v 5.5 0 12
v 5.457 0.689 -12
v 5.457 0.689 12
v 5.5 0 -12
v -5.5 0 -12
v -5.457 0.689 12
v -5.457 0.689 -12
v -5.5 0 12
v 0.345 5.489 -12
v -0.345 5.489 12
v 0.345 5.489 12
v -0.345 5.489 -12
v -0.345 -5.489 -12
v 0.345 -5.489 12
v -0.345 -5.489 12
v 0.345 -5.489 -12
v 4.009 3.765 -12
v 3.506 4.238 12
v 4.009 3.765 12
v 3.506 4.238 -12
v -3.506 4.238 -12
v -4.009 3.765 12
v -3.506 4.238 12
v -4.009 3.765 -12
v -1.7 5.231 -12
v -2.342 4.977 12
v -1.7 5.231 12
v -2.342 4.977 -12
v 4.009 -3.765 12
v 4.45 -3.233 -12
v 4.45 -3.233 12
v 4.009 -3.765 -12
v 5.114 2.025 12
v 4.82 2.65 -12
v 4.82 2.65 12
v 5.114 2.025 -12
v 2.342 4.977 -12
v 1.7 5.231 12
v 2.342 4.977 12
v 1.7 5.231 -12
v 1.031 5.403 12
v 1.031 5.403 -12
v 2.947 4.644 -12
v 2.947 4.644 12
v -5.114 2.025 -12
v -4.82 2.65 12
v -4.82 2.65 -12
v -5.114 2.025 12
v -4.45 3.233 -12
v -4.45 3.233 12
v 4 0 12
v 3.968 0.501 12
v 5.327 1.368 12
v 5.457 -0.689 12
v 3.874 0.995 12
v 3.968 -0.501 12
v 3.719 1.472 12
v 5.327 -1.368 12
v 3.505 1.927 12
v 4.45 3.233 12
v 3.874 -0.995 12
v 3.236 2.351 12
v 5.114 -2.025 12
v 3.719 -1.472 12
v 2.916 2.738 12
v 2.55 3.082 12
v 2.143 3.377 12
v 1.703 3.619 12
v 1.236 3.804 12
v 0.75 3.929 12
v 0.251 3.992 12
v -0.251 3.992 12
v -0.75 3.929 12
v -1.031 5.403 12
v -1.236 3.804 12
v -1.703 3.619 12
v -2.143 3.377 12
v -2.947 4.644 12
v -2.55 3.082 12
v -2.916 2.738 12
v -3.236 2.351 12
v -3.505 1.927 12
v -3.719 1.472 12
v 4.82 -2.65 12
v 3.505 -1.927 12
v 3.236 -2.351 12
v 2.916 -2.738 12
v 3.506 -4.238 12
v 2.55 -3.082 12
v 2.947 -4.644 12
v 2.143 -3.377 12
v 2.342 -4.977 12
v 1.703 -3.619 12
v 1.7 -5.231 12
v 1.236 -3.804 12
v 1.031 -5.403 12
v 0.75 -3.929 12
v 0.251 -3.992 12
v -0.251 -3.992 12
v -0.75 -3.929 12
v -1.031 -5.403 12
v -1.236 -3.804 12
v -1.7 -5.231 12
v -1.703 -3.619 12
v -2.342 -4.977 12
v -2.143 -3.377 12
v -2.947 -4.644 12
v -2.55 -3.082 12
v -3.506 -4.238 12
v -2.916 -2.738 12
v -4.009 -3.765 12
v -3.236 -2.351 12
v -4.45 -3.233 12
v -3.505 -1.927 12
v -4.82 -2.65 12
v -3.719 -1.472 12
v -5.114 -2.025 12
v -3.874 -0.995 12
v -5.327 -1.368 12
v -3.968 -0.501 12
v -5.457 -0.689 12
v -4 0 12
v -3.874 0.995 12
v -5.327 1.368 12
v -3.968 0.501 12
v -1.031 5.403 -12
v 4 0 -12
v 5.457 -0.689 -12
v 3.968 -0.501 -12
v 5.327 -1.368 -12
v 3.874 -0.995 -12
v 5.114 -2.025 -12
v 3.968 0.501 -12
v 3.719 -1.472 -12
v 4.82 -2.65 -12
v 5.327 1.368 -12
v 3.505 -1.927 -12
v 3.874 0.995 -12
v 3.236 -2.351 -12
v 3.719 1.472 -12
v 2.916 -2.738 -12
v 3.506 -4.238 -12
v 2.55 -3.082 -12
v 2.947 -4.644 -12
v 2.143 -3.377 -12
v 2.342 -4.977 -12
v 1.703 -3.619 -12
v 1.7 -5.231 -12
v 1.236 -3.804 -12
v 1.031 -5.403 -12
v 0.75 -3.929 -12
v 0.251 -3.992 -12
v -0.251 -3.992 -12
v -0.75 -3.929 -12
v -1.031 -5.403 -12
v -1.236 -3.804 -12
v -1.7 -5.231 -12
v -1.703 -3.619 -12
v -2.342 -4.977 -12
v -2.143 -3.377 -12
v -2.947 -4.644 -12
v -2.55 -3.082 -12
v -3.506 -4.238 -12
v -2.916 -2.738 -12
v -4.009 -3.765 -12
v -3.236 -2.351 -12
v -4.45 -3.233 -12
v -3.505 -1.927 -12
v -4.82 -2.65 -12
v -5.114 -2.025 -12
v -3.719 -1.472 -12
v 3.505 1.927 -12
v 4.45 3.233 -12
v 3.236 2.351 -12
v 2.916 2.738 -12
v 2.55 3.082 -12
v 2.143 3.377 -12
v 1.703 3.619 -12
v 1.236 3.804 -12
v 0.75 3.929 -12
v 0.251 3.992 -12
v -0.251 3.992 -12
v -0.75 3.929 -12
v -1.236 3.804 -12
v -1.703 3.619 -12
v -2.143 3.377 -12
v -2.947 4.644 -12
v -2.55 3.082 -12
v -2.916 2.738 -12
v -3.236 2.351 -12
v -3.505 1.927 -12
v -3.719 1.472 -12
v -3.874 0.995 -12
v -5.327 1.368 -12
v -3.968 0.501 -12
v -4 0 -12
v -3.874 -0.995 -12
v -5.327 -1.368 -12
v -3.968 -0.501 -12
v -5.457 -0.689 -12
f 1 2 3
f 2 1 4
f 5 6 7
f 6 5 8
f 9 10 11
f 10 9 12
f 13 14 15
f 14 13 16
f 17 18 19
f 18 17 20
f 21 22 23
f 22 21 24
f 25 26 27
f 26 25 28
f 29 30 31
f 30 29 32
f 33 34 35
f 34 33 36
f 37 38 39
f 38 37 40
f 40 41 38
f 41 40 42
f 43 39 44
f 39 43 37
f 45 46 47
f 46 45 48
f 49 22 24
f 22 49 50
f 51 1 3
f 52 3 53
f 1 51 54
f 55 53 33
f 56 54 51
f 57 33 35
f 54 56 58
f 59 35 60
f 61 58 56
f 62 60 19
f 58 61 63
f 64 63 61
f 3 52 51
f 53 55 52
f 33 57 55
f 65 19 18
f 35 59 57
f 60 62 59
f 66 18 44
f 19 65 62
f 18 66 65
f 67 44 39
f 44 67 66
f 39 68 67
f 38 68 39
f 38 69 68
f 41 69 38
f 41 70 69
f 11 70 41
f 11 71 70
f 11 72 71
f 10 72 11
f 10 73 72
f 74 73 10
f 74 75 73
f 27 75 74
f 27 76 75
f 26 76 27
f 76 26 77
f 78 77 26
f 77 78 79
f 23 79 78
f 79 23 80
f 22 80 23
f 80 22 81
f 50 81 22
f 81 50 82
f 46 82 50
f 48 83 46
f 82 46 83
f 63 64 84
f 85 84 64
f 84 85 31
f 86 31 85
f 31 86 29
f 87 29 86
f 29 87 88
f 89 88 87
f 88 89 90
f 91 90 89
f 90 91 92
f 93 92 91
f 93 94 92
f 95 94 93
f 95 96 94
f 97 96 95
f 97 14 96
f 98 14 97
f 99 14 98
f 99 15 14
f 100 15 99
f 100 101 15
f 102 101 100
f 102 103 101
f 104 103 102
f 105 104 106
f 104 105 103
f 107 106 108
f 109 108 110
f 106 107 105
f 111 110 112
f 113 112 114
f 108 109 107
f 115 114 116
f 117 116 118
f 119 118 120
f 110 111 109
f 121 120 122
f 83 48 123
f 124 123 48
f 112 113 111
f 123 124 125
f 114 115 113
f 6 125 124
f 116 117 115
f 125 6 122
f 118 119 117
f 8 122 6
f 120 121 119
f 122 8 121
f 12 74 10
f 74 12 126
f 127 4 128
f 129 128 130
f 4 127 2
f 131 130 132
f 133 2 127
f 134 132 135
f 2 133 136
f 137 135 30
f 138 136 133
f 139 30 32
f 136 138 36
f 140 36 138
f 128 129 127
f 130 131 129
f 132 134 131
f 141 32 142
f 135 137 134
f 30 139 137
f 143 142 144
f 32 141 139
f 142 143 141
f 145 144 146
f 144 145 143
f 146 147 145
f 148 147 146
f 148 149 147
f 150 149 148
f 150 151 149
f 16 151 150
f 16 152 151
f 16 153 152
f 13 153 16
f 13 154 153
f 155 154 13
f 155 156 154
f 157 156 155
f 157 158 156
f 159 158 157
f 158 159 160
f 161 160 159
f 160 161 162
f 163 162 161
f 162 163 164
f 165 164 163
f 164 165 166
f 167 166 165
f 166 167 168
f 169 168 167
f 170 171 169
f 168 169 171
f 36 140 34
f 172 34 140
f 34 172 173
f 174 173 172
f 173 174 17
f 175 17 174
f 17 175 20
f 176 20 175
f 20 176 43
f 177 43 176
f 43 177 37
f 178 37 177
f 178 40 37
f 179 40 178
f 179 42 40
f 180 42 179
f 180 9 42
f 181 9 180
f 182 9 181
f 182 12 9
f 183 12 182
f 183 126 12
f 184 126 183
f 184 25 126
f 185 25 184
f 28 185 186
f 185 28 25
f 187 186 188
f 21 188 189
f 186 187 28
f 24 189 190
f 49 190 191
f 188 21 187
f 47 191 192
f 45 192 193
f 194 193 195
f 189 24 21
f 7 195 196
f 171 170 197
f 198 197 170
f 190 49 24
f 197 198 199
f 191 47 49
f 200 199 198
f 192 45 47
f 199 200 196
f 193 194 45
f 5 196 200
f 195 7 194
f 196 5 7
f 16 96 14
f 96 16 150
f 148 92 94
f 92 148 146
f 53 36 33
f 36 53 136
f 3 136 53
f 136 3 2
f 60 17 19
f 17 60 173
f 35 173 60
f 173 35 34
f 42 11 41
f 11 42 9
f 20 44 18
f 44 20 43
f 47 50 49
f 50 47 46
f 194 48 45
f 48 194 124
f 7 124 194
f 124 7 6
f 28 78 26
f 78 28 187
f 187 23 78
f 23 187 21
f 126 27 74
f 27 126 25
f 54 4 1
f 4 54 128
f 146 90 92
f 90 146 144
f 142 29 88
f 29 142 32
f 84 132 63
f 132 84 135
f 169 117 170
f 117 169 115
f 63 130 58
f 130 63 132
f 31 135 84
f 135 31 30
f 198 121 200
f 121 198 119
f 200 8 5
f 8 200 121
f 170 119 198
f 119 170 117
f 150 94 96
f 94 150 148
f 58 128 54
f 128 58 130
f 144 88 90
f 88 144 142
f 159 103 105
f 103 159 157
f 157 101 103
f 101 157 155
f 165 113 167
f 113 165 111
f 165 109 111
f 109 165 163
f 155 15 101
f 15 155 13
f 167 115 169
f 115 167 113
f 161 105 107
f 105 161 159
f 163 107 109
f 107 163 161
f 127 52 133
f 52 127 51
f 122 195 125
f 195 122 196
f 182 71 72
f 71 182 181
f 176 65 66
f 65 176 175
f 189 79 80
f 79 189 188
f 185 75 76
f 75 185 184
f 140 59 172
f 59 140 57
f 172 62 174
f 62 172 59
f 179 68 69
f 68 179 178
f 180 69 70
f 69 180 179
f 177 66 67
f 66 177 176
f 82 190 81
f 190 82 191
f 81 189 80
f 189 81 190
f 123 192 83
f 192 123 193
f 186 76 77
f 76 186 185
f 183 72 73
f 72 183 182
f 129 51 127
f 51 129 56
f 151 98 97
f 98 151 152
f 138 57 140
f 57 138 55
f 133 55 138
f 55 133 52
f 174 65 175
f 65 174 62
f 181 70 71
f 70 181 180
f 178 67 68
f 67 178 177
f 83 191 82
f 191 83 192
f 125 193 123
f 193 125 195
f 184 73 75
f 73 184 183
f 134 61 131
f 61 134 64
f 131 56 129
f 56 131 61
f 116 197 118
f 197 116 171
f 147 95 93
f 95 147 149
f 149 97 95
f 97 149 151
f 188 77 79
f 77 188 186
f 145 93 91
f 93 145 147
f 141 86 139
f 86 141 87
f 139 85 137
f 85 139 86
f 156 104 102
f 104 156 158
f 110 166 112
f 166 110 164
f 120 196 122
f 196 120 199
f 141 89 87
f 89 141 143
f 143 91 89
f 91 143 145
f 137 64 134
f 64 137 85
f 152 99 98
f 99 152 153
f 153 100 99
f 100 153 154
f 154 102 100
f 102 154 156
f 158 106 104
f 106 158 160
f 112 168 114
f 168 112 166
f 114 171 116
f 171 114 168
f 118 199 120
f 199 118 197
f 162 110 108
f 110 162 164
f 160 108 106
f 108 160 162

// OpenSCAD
$fn = 50;


difference() {
	union() {
		translate(v = [0, 0, -12.0000000000]) {
			cylinder(h = 24, r = 5.5000000000);
		}
	}
	union() {
		translate(v = [0, 0, -100.0000000000]) {
			cylinder(h = 200, r = 4);
		}
	}
}
